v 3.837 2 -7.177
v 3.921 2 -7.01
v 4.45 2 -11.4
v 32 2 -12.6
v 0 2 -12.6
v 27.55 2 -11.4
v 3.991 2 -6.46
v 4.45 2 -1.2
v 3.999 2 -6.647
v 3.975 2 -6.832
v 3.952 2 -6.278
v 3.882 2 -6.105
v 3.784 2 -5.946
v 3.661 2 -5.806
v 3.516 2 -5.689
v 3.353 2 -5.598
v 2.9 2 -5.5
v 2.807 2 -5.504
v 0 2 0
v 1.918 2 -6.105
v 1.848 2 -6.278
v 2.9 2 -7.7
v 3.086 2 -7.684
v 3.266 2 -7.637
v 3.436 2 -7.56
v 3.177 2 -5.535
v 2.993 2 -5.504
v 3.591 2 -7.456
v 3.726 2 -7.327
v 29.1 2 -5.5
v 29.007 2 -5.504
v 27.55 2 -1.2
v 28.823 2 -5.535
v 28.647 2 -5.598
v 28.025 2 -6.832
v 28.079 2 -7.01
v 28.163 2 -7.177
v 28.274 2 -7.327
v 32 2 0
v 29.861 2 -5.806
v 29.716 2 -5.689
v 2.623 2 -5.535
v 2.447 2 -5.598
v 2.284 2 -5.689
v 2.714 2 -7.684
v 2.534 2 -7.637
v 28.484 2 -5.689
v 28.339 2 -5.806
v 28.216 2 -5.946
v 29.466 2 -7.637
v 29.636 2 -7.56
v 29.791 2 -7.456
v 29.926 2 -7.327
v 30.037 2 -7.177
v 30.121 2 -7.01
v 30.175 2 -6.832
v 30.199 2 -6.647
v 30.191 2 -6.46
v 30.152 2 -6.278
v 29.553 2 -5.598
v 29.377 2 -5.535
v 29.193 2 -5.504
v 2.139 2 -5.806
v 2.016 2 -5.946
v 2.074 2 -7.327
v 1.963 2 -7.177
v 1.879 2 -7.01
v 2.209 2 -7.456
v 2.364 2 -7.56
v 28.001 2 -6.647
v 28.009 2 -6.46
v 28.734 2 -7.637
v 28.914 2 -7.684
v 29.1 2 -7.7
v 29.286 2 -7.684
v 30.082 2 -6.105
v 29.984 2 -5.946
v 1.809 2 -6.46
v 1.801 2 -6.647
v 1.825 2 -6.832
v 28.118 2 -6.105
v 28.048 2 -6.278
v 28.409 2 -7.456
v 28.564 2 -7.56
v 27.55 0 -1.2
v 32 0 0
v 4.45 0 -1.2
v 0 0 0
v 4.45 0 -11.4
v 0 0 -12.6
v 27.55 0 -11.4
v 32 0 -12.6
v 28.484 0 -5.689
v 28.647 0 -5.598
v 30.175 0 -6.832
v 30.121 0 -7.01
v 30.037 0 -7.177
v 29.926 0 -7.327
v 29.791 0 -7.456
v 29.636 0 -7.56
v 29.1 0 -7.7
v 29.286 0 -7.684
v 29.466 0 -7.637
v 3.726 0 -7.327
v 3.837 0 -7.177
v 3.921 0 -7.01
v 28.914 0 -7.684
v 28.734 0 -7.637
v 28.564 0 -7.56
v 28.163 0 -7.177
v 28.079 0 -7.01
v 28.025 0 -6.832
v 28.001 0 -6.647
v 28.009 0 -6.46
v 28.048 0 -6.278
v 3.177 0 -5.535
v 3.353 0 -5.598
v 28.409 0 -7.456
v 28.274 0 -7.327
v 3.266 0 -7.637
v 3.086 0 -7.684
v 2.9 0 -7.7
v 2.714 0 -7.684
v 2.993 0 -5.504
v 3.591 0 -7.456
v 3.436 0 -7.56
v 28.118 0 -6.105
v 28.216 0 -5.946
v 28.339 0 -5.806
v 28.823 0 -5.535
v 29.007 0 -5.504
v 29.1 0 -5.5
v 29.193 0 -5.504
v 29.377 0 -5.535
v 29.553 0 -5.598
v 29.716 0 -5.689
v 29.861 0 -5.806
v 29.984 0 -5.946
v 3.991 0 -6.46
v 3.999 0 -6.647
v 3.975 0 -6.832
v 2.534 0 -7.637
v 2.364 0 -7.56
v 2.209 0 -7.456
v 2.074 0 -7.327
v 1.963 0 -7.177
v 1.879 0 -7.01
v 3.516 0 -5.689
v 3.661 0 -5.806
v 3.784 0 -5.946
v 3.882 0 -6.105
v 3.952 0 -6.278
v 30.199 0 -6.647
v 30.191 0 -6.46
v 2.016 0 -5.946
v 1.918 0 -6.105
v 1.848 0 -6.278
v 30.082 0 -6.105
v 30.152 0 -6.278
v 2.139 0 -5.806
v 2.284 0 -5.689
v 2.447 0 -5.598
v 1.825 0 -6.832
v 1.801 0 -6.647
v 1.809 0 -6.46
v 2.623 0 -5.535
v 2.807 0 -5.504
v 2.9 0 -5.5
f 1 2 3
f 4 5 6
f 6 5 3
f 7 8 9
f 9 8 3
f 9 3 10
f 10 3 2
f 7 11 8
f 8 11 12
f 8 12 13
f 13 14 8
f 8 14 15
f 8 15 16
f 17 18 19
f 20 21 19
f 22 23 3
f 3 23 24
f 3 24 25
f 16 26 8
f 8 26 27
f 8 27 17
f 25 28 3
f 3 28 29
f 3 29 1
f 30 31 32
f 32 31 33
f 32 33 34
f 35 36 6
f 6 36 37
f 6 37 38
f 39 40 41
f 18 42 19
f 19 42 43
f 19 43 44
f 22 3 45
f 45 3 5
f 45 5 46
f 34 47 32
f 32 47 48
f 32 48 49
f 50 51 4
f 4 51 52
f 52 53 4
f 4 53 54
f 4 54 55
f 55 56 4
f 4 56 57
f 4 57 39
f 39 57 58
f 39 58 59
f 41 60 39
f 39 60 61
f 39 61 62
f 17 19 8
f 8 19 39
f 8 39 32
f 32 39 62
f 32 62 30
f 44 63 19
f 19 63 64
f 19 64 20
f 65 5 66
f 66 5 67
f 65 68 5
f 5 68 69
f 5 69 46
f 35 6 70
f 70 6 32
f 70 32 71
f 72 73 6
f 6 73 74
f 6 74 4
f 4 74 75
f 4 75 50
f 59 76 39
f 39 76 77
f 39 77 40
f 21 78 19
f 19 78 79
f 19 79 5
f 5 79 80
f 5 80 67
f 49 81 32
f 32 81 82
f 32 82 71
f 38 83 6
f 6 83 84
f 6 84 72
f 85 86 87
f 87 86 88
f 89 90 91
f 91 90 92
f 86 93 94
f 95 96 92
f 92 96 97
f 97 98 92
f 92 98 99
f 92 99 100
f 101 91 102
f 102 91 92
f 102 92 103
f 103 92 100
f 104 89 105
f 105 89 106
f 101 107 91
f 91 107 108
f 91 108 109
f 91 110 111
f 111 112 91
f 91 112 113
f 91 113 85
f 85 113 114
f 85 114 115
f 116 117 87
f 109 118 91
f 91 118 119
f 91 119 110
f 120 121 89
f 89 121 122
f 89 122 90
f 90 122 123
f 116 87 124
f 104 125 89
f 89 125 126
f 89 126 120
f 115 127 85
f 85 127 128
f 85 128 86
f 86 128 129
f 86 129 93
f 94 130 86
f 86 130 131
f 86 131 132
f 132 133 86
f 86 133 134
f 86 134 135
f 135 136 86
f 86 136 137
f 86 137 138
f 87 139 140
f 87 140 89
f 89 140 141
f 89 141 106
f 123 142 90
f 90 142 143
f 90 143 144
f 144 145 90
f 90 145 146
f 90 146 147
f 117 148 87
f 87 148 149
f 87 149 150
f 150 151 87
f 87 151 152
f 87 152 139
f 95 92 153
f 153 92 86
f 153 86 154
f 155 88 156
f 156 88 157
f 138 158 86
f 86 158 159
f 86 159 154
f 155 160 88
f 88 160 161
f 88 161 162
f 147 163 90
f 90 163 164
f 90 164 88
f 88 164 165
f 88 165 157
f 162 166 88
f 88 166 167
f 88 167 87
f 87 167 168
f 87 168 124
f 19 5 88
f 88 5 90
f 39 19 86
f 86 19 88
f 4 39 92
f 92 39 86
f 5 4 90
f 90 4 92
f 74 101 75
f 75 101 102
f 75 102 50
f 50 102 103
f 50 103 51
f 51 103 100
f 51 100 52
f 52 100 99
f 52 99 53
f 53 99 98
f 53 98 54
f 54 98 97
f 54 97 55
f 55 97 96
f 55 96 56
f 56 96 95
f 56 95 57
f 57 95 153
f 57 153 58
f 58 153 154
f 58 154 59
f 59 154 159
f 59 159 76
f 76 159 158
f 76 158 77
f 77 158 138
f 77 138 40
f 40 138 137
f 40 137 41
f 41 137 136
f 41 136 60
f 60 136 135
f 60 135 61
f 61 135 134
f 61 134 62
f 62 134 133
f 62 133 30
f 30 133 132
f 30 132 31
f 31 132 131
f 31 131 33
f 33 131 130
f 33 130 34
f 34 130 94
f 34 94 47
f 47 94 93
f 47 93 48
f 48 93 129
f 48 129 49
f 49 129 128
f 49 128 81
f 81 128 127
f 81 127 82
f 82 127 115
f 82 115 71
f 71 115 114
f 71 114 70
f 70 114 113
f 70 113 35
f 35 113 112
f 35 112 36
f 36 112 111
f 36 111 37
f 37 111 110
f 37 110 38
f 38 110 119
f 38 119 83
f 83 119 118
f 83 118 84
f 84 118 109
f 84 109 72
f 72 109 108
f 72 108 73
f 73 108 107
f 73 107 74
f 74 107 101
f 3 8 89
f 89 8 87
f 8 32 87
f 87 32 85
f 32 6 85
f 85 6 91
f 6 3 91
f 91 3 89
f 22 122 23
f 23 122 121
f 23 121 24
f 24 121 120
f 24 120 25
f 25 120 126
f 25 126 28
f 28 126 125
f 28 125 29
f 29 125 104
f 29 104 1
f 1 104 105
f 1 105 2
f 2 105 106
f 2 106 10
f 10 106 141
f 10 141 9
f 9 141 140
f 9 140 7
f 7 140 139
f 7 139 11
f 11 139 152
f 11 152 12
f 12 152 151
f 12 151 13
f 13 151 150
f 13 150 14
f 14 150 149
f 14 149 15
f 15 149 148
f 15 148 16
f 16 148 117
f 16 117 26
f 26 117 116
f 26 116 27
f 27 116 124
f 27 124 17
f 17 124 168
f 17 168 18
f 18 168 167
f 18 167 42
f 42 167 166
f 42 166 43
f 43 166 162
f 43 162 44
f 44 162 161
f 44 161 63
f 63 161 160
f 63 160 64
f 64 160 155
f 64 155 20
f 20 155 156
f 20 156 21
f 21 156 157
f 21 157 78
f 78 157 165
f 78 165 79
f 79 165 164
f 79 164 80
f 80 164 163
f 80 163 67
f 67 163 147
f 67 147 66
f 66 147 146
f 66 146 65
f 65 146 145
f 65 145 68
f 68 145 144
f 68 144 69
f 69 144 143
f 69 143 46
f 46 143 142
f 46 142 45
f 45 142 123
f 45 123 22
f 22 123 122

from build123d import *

# Parameters (mm, degrees)
SCHIZZO1_W                   = 32
SCHIZZO1_H                   = 12.6
SCHIZZO1_R                   = 1.1
SCHIZZO1_W_2                 = 23.1
SCHIZZO1_H_2                 = 10.2
ESTRUSIONE_ESTRUSIONE1_DEPTH = 2


with BuildPart() as part:
    # Schizzo1 → Estrusione-Estrusione1 (new body)
    with BuildSketch(Plane(origin=(0, 0, 0), x_dir=(1, 0, 0), z_dir=(0, 1, 0))):
        with Locations((16, 6.3)):
            Rectangle(SCHIZZO1_W, SCHIZZO1_H)
        with Locations(Location((2.9, 6.6, 0), (0, 0, 270))):
            Circle(SCHIZZO1_R, mode=Mode.SUBTRACT)
        with Locations(Location((29.1, 6.6, 0), (0, 0, 270))):
            Circle(SCHIZZO1_R, mode=Mode.SUBTRACT)
        with Locations((16, 6.3)):
            Rectangle(SCHIZZO1_W_2, SCHIZZO1_H_2, mode=Mode.SUBTRACT)
    extrude(amount=ESTRUSIONE_ESTRUSIONE1_DEPTH)


solid = part.part
